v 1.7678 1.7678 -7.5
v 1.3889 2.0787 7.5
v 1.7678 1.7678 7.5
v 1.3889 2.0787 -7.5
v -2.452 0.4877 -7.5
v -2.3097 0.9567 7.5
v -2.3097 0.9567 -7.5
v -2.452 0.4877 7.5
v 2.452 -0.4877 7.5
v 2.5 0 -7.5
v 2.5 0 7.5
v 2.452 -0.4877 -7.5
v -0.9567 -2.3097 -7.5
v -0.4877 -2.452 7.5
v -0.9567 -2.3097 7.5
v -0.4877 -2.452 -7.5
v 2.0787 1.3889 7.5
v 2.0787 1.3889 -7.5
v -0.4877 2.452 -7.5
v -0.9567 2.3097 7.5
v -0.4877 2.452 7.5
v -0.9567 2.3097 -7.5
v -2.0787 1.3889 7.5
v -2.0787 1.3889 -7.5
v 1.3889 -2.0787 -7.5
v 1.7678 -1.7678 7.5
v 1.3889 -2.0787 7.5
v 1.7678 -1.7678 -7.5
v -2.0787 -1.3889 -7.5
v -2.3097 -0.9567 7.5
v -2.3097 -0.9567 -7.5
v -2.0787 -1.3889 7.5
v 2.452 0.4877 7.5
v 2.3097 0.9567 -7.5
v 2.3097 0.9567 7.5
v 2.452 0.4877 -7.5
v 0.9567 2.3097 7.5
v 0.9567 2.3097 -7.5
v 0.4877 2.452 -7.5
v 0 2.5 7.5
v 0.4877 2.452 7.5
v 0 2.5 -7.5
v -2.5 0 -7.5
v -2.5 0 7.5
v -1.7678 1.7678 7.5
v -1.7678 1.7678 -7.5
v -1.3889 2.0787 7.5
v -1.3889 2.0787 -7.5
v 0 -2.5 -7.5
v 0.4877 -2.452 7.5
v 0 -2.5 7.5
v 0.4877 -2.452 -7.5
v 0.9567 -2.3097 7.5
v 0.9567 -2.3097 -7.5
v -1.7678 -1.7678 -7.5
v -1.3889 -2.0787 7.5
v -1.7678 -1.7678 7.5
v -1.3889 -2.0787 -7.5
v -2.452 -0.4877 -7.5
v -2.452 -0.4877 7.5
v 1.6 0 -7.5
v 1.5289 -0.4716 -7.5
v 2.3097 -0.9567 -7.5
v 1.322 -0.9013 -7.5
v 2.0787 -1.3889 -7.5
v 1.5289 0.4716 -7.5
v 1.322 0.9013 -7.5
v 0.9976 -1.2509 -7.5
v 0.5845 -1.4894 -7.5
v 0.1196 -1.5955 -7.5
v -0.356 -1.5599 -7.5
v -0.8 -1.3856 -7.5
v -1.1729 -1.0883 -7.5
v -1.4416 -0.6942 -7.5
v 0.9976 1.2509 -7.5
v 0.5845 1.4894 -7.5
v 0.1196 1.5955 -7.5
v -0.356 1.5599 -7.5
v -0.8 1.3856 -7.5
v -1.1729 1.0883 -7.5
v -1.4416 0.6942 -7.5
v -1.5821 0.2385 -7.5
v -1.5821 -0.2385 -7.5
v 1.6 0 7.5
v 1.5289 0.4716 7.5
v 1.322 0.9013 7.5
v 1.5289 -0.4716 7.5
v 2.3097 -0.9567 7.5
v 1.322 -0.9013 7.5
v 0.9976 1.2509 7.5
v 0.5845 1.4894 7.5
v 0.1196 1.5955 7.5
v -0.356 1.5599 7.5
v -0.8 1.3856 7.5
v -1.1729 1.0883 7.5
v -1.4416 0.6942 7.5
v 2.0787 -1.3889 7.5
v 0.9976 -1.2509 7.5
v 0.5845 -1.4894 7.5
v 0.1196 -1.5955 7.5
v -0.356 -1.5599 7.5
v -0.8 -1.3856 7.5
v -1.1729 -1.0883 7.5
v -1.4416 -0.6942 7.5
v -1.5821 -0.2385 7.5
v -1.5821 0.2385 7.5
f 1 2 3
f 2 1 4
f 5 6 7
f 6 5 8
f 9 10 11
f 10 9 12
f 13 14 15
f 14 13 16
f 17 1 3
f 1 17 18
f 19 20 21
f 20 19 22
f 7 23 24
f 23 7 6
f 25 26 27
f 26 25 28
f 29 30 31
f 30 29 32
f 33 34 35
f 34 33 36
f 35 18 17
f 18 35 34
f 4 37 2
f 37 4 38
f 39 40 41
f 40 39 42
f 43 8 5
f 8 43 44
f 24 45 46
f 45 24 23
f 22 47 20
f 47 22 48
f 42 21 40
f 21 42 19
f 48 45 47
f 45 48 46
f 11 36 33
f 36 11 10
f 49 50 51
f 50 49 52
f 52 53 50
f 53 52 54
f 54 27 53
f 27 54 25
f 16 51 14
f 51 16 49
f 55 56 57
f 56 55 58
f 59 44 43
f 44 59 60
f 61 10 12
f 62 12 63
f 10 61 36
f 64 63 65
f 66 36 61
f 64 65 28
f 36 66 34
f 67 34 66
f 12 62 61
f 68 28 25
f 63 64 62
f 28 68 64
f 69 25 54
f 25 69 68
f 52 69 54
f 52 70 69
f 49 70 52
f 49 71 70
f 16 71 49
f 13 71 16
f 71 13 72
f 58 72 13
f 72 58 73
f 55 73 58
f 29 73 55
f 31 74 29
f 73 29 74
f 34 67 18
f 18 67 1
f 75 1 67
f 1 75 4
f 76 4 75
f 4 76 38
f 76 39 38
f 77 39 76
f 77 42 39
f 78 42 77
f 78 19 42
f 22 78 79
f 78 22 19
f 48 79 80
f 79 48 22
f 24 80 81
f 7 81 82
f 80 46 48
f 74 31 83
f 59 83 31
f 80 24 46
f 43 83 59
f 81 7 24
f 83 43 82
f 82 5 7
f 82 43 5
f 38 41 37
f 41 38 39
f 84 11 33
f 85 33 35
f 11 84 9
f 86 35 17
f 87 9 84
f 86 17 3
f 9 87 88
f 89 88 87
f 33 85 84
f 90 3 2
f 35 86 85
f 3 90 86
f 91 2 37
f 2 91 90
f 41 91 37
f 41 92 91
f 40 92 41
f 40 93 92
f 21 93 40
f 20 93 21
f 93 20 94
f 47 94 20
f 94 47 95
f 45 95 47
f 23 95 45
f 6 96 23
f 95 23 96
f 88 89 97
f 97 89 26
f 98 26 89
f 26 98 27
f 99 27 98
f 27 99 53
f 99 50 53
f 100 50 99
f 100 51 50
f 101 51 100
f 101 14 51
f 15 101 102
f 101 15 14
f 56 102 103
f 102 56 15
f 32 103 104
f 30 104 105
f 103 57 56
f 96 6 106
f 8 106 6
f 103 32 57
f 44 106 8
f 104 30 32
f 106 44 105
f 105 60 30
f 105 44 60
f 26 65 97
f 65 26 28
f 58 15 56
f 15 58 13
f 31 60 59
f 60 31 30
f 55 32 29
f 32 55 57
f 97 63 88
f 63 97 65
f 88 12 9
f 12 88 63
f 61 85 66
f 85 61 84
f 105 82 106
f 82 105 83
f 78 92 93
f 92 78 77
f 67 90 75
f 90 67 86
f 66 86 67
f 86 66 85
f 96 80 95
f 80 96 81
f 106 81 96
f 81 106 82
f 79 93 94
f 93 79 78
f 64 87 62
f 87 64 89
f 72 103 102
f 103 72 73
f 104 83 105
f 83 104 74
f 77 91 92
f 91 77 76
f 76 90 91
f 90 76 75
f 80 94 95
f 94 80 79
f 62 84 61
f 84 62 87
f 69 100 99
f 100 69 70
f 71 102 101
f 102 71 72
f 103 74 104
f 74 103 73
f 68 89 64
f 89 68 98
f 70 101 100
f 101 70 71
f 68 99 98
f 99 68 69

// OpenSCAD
/////////////////////////////////////////////////////////////////////////////////
// Spacer for PCBs.
//
// Author:              Maximilian Stiefel
// Last modification:   22.06.2017
/////////////////////////////////////////////////////////////////////////////////

/////////////////////////////////////////////////////////////////////////////////
// Includes
/////////////////////////////////////////////////////////////////////////////////

/////////////////////////////////////////////////////////////////////////////////
// Vars
/////////////////////////////////////////////////////////////////////////////////
$fa = 0.5; // minimum facet angle is now 0.5
$fs = 0.5; // minimum facet size is now 0.5 mm

spacer_height = 15;
spacer_diameter = 5;
spacer_hole_diameter = 3.2; // standard hole size for M3

/////////////////////////////////////////////////////////////////////////////////
// Action
/////////////////////////////////////////////////////////////////////////////////
difference()
{
	cylinder(h = spacer_height, r = spacer_diameter/2, center = true);
	translate([0, 0, 0])
	cylinder(h = spacer_height + 2, r = spacer_hole_diameter/2, center = true);
}
